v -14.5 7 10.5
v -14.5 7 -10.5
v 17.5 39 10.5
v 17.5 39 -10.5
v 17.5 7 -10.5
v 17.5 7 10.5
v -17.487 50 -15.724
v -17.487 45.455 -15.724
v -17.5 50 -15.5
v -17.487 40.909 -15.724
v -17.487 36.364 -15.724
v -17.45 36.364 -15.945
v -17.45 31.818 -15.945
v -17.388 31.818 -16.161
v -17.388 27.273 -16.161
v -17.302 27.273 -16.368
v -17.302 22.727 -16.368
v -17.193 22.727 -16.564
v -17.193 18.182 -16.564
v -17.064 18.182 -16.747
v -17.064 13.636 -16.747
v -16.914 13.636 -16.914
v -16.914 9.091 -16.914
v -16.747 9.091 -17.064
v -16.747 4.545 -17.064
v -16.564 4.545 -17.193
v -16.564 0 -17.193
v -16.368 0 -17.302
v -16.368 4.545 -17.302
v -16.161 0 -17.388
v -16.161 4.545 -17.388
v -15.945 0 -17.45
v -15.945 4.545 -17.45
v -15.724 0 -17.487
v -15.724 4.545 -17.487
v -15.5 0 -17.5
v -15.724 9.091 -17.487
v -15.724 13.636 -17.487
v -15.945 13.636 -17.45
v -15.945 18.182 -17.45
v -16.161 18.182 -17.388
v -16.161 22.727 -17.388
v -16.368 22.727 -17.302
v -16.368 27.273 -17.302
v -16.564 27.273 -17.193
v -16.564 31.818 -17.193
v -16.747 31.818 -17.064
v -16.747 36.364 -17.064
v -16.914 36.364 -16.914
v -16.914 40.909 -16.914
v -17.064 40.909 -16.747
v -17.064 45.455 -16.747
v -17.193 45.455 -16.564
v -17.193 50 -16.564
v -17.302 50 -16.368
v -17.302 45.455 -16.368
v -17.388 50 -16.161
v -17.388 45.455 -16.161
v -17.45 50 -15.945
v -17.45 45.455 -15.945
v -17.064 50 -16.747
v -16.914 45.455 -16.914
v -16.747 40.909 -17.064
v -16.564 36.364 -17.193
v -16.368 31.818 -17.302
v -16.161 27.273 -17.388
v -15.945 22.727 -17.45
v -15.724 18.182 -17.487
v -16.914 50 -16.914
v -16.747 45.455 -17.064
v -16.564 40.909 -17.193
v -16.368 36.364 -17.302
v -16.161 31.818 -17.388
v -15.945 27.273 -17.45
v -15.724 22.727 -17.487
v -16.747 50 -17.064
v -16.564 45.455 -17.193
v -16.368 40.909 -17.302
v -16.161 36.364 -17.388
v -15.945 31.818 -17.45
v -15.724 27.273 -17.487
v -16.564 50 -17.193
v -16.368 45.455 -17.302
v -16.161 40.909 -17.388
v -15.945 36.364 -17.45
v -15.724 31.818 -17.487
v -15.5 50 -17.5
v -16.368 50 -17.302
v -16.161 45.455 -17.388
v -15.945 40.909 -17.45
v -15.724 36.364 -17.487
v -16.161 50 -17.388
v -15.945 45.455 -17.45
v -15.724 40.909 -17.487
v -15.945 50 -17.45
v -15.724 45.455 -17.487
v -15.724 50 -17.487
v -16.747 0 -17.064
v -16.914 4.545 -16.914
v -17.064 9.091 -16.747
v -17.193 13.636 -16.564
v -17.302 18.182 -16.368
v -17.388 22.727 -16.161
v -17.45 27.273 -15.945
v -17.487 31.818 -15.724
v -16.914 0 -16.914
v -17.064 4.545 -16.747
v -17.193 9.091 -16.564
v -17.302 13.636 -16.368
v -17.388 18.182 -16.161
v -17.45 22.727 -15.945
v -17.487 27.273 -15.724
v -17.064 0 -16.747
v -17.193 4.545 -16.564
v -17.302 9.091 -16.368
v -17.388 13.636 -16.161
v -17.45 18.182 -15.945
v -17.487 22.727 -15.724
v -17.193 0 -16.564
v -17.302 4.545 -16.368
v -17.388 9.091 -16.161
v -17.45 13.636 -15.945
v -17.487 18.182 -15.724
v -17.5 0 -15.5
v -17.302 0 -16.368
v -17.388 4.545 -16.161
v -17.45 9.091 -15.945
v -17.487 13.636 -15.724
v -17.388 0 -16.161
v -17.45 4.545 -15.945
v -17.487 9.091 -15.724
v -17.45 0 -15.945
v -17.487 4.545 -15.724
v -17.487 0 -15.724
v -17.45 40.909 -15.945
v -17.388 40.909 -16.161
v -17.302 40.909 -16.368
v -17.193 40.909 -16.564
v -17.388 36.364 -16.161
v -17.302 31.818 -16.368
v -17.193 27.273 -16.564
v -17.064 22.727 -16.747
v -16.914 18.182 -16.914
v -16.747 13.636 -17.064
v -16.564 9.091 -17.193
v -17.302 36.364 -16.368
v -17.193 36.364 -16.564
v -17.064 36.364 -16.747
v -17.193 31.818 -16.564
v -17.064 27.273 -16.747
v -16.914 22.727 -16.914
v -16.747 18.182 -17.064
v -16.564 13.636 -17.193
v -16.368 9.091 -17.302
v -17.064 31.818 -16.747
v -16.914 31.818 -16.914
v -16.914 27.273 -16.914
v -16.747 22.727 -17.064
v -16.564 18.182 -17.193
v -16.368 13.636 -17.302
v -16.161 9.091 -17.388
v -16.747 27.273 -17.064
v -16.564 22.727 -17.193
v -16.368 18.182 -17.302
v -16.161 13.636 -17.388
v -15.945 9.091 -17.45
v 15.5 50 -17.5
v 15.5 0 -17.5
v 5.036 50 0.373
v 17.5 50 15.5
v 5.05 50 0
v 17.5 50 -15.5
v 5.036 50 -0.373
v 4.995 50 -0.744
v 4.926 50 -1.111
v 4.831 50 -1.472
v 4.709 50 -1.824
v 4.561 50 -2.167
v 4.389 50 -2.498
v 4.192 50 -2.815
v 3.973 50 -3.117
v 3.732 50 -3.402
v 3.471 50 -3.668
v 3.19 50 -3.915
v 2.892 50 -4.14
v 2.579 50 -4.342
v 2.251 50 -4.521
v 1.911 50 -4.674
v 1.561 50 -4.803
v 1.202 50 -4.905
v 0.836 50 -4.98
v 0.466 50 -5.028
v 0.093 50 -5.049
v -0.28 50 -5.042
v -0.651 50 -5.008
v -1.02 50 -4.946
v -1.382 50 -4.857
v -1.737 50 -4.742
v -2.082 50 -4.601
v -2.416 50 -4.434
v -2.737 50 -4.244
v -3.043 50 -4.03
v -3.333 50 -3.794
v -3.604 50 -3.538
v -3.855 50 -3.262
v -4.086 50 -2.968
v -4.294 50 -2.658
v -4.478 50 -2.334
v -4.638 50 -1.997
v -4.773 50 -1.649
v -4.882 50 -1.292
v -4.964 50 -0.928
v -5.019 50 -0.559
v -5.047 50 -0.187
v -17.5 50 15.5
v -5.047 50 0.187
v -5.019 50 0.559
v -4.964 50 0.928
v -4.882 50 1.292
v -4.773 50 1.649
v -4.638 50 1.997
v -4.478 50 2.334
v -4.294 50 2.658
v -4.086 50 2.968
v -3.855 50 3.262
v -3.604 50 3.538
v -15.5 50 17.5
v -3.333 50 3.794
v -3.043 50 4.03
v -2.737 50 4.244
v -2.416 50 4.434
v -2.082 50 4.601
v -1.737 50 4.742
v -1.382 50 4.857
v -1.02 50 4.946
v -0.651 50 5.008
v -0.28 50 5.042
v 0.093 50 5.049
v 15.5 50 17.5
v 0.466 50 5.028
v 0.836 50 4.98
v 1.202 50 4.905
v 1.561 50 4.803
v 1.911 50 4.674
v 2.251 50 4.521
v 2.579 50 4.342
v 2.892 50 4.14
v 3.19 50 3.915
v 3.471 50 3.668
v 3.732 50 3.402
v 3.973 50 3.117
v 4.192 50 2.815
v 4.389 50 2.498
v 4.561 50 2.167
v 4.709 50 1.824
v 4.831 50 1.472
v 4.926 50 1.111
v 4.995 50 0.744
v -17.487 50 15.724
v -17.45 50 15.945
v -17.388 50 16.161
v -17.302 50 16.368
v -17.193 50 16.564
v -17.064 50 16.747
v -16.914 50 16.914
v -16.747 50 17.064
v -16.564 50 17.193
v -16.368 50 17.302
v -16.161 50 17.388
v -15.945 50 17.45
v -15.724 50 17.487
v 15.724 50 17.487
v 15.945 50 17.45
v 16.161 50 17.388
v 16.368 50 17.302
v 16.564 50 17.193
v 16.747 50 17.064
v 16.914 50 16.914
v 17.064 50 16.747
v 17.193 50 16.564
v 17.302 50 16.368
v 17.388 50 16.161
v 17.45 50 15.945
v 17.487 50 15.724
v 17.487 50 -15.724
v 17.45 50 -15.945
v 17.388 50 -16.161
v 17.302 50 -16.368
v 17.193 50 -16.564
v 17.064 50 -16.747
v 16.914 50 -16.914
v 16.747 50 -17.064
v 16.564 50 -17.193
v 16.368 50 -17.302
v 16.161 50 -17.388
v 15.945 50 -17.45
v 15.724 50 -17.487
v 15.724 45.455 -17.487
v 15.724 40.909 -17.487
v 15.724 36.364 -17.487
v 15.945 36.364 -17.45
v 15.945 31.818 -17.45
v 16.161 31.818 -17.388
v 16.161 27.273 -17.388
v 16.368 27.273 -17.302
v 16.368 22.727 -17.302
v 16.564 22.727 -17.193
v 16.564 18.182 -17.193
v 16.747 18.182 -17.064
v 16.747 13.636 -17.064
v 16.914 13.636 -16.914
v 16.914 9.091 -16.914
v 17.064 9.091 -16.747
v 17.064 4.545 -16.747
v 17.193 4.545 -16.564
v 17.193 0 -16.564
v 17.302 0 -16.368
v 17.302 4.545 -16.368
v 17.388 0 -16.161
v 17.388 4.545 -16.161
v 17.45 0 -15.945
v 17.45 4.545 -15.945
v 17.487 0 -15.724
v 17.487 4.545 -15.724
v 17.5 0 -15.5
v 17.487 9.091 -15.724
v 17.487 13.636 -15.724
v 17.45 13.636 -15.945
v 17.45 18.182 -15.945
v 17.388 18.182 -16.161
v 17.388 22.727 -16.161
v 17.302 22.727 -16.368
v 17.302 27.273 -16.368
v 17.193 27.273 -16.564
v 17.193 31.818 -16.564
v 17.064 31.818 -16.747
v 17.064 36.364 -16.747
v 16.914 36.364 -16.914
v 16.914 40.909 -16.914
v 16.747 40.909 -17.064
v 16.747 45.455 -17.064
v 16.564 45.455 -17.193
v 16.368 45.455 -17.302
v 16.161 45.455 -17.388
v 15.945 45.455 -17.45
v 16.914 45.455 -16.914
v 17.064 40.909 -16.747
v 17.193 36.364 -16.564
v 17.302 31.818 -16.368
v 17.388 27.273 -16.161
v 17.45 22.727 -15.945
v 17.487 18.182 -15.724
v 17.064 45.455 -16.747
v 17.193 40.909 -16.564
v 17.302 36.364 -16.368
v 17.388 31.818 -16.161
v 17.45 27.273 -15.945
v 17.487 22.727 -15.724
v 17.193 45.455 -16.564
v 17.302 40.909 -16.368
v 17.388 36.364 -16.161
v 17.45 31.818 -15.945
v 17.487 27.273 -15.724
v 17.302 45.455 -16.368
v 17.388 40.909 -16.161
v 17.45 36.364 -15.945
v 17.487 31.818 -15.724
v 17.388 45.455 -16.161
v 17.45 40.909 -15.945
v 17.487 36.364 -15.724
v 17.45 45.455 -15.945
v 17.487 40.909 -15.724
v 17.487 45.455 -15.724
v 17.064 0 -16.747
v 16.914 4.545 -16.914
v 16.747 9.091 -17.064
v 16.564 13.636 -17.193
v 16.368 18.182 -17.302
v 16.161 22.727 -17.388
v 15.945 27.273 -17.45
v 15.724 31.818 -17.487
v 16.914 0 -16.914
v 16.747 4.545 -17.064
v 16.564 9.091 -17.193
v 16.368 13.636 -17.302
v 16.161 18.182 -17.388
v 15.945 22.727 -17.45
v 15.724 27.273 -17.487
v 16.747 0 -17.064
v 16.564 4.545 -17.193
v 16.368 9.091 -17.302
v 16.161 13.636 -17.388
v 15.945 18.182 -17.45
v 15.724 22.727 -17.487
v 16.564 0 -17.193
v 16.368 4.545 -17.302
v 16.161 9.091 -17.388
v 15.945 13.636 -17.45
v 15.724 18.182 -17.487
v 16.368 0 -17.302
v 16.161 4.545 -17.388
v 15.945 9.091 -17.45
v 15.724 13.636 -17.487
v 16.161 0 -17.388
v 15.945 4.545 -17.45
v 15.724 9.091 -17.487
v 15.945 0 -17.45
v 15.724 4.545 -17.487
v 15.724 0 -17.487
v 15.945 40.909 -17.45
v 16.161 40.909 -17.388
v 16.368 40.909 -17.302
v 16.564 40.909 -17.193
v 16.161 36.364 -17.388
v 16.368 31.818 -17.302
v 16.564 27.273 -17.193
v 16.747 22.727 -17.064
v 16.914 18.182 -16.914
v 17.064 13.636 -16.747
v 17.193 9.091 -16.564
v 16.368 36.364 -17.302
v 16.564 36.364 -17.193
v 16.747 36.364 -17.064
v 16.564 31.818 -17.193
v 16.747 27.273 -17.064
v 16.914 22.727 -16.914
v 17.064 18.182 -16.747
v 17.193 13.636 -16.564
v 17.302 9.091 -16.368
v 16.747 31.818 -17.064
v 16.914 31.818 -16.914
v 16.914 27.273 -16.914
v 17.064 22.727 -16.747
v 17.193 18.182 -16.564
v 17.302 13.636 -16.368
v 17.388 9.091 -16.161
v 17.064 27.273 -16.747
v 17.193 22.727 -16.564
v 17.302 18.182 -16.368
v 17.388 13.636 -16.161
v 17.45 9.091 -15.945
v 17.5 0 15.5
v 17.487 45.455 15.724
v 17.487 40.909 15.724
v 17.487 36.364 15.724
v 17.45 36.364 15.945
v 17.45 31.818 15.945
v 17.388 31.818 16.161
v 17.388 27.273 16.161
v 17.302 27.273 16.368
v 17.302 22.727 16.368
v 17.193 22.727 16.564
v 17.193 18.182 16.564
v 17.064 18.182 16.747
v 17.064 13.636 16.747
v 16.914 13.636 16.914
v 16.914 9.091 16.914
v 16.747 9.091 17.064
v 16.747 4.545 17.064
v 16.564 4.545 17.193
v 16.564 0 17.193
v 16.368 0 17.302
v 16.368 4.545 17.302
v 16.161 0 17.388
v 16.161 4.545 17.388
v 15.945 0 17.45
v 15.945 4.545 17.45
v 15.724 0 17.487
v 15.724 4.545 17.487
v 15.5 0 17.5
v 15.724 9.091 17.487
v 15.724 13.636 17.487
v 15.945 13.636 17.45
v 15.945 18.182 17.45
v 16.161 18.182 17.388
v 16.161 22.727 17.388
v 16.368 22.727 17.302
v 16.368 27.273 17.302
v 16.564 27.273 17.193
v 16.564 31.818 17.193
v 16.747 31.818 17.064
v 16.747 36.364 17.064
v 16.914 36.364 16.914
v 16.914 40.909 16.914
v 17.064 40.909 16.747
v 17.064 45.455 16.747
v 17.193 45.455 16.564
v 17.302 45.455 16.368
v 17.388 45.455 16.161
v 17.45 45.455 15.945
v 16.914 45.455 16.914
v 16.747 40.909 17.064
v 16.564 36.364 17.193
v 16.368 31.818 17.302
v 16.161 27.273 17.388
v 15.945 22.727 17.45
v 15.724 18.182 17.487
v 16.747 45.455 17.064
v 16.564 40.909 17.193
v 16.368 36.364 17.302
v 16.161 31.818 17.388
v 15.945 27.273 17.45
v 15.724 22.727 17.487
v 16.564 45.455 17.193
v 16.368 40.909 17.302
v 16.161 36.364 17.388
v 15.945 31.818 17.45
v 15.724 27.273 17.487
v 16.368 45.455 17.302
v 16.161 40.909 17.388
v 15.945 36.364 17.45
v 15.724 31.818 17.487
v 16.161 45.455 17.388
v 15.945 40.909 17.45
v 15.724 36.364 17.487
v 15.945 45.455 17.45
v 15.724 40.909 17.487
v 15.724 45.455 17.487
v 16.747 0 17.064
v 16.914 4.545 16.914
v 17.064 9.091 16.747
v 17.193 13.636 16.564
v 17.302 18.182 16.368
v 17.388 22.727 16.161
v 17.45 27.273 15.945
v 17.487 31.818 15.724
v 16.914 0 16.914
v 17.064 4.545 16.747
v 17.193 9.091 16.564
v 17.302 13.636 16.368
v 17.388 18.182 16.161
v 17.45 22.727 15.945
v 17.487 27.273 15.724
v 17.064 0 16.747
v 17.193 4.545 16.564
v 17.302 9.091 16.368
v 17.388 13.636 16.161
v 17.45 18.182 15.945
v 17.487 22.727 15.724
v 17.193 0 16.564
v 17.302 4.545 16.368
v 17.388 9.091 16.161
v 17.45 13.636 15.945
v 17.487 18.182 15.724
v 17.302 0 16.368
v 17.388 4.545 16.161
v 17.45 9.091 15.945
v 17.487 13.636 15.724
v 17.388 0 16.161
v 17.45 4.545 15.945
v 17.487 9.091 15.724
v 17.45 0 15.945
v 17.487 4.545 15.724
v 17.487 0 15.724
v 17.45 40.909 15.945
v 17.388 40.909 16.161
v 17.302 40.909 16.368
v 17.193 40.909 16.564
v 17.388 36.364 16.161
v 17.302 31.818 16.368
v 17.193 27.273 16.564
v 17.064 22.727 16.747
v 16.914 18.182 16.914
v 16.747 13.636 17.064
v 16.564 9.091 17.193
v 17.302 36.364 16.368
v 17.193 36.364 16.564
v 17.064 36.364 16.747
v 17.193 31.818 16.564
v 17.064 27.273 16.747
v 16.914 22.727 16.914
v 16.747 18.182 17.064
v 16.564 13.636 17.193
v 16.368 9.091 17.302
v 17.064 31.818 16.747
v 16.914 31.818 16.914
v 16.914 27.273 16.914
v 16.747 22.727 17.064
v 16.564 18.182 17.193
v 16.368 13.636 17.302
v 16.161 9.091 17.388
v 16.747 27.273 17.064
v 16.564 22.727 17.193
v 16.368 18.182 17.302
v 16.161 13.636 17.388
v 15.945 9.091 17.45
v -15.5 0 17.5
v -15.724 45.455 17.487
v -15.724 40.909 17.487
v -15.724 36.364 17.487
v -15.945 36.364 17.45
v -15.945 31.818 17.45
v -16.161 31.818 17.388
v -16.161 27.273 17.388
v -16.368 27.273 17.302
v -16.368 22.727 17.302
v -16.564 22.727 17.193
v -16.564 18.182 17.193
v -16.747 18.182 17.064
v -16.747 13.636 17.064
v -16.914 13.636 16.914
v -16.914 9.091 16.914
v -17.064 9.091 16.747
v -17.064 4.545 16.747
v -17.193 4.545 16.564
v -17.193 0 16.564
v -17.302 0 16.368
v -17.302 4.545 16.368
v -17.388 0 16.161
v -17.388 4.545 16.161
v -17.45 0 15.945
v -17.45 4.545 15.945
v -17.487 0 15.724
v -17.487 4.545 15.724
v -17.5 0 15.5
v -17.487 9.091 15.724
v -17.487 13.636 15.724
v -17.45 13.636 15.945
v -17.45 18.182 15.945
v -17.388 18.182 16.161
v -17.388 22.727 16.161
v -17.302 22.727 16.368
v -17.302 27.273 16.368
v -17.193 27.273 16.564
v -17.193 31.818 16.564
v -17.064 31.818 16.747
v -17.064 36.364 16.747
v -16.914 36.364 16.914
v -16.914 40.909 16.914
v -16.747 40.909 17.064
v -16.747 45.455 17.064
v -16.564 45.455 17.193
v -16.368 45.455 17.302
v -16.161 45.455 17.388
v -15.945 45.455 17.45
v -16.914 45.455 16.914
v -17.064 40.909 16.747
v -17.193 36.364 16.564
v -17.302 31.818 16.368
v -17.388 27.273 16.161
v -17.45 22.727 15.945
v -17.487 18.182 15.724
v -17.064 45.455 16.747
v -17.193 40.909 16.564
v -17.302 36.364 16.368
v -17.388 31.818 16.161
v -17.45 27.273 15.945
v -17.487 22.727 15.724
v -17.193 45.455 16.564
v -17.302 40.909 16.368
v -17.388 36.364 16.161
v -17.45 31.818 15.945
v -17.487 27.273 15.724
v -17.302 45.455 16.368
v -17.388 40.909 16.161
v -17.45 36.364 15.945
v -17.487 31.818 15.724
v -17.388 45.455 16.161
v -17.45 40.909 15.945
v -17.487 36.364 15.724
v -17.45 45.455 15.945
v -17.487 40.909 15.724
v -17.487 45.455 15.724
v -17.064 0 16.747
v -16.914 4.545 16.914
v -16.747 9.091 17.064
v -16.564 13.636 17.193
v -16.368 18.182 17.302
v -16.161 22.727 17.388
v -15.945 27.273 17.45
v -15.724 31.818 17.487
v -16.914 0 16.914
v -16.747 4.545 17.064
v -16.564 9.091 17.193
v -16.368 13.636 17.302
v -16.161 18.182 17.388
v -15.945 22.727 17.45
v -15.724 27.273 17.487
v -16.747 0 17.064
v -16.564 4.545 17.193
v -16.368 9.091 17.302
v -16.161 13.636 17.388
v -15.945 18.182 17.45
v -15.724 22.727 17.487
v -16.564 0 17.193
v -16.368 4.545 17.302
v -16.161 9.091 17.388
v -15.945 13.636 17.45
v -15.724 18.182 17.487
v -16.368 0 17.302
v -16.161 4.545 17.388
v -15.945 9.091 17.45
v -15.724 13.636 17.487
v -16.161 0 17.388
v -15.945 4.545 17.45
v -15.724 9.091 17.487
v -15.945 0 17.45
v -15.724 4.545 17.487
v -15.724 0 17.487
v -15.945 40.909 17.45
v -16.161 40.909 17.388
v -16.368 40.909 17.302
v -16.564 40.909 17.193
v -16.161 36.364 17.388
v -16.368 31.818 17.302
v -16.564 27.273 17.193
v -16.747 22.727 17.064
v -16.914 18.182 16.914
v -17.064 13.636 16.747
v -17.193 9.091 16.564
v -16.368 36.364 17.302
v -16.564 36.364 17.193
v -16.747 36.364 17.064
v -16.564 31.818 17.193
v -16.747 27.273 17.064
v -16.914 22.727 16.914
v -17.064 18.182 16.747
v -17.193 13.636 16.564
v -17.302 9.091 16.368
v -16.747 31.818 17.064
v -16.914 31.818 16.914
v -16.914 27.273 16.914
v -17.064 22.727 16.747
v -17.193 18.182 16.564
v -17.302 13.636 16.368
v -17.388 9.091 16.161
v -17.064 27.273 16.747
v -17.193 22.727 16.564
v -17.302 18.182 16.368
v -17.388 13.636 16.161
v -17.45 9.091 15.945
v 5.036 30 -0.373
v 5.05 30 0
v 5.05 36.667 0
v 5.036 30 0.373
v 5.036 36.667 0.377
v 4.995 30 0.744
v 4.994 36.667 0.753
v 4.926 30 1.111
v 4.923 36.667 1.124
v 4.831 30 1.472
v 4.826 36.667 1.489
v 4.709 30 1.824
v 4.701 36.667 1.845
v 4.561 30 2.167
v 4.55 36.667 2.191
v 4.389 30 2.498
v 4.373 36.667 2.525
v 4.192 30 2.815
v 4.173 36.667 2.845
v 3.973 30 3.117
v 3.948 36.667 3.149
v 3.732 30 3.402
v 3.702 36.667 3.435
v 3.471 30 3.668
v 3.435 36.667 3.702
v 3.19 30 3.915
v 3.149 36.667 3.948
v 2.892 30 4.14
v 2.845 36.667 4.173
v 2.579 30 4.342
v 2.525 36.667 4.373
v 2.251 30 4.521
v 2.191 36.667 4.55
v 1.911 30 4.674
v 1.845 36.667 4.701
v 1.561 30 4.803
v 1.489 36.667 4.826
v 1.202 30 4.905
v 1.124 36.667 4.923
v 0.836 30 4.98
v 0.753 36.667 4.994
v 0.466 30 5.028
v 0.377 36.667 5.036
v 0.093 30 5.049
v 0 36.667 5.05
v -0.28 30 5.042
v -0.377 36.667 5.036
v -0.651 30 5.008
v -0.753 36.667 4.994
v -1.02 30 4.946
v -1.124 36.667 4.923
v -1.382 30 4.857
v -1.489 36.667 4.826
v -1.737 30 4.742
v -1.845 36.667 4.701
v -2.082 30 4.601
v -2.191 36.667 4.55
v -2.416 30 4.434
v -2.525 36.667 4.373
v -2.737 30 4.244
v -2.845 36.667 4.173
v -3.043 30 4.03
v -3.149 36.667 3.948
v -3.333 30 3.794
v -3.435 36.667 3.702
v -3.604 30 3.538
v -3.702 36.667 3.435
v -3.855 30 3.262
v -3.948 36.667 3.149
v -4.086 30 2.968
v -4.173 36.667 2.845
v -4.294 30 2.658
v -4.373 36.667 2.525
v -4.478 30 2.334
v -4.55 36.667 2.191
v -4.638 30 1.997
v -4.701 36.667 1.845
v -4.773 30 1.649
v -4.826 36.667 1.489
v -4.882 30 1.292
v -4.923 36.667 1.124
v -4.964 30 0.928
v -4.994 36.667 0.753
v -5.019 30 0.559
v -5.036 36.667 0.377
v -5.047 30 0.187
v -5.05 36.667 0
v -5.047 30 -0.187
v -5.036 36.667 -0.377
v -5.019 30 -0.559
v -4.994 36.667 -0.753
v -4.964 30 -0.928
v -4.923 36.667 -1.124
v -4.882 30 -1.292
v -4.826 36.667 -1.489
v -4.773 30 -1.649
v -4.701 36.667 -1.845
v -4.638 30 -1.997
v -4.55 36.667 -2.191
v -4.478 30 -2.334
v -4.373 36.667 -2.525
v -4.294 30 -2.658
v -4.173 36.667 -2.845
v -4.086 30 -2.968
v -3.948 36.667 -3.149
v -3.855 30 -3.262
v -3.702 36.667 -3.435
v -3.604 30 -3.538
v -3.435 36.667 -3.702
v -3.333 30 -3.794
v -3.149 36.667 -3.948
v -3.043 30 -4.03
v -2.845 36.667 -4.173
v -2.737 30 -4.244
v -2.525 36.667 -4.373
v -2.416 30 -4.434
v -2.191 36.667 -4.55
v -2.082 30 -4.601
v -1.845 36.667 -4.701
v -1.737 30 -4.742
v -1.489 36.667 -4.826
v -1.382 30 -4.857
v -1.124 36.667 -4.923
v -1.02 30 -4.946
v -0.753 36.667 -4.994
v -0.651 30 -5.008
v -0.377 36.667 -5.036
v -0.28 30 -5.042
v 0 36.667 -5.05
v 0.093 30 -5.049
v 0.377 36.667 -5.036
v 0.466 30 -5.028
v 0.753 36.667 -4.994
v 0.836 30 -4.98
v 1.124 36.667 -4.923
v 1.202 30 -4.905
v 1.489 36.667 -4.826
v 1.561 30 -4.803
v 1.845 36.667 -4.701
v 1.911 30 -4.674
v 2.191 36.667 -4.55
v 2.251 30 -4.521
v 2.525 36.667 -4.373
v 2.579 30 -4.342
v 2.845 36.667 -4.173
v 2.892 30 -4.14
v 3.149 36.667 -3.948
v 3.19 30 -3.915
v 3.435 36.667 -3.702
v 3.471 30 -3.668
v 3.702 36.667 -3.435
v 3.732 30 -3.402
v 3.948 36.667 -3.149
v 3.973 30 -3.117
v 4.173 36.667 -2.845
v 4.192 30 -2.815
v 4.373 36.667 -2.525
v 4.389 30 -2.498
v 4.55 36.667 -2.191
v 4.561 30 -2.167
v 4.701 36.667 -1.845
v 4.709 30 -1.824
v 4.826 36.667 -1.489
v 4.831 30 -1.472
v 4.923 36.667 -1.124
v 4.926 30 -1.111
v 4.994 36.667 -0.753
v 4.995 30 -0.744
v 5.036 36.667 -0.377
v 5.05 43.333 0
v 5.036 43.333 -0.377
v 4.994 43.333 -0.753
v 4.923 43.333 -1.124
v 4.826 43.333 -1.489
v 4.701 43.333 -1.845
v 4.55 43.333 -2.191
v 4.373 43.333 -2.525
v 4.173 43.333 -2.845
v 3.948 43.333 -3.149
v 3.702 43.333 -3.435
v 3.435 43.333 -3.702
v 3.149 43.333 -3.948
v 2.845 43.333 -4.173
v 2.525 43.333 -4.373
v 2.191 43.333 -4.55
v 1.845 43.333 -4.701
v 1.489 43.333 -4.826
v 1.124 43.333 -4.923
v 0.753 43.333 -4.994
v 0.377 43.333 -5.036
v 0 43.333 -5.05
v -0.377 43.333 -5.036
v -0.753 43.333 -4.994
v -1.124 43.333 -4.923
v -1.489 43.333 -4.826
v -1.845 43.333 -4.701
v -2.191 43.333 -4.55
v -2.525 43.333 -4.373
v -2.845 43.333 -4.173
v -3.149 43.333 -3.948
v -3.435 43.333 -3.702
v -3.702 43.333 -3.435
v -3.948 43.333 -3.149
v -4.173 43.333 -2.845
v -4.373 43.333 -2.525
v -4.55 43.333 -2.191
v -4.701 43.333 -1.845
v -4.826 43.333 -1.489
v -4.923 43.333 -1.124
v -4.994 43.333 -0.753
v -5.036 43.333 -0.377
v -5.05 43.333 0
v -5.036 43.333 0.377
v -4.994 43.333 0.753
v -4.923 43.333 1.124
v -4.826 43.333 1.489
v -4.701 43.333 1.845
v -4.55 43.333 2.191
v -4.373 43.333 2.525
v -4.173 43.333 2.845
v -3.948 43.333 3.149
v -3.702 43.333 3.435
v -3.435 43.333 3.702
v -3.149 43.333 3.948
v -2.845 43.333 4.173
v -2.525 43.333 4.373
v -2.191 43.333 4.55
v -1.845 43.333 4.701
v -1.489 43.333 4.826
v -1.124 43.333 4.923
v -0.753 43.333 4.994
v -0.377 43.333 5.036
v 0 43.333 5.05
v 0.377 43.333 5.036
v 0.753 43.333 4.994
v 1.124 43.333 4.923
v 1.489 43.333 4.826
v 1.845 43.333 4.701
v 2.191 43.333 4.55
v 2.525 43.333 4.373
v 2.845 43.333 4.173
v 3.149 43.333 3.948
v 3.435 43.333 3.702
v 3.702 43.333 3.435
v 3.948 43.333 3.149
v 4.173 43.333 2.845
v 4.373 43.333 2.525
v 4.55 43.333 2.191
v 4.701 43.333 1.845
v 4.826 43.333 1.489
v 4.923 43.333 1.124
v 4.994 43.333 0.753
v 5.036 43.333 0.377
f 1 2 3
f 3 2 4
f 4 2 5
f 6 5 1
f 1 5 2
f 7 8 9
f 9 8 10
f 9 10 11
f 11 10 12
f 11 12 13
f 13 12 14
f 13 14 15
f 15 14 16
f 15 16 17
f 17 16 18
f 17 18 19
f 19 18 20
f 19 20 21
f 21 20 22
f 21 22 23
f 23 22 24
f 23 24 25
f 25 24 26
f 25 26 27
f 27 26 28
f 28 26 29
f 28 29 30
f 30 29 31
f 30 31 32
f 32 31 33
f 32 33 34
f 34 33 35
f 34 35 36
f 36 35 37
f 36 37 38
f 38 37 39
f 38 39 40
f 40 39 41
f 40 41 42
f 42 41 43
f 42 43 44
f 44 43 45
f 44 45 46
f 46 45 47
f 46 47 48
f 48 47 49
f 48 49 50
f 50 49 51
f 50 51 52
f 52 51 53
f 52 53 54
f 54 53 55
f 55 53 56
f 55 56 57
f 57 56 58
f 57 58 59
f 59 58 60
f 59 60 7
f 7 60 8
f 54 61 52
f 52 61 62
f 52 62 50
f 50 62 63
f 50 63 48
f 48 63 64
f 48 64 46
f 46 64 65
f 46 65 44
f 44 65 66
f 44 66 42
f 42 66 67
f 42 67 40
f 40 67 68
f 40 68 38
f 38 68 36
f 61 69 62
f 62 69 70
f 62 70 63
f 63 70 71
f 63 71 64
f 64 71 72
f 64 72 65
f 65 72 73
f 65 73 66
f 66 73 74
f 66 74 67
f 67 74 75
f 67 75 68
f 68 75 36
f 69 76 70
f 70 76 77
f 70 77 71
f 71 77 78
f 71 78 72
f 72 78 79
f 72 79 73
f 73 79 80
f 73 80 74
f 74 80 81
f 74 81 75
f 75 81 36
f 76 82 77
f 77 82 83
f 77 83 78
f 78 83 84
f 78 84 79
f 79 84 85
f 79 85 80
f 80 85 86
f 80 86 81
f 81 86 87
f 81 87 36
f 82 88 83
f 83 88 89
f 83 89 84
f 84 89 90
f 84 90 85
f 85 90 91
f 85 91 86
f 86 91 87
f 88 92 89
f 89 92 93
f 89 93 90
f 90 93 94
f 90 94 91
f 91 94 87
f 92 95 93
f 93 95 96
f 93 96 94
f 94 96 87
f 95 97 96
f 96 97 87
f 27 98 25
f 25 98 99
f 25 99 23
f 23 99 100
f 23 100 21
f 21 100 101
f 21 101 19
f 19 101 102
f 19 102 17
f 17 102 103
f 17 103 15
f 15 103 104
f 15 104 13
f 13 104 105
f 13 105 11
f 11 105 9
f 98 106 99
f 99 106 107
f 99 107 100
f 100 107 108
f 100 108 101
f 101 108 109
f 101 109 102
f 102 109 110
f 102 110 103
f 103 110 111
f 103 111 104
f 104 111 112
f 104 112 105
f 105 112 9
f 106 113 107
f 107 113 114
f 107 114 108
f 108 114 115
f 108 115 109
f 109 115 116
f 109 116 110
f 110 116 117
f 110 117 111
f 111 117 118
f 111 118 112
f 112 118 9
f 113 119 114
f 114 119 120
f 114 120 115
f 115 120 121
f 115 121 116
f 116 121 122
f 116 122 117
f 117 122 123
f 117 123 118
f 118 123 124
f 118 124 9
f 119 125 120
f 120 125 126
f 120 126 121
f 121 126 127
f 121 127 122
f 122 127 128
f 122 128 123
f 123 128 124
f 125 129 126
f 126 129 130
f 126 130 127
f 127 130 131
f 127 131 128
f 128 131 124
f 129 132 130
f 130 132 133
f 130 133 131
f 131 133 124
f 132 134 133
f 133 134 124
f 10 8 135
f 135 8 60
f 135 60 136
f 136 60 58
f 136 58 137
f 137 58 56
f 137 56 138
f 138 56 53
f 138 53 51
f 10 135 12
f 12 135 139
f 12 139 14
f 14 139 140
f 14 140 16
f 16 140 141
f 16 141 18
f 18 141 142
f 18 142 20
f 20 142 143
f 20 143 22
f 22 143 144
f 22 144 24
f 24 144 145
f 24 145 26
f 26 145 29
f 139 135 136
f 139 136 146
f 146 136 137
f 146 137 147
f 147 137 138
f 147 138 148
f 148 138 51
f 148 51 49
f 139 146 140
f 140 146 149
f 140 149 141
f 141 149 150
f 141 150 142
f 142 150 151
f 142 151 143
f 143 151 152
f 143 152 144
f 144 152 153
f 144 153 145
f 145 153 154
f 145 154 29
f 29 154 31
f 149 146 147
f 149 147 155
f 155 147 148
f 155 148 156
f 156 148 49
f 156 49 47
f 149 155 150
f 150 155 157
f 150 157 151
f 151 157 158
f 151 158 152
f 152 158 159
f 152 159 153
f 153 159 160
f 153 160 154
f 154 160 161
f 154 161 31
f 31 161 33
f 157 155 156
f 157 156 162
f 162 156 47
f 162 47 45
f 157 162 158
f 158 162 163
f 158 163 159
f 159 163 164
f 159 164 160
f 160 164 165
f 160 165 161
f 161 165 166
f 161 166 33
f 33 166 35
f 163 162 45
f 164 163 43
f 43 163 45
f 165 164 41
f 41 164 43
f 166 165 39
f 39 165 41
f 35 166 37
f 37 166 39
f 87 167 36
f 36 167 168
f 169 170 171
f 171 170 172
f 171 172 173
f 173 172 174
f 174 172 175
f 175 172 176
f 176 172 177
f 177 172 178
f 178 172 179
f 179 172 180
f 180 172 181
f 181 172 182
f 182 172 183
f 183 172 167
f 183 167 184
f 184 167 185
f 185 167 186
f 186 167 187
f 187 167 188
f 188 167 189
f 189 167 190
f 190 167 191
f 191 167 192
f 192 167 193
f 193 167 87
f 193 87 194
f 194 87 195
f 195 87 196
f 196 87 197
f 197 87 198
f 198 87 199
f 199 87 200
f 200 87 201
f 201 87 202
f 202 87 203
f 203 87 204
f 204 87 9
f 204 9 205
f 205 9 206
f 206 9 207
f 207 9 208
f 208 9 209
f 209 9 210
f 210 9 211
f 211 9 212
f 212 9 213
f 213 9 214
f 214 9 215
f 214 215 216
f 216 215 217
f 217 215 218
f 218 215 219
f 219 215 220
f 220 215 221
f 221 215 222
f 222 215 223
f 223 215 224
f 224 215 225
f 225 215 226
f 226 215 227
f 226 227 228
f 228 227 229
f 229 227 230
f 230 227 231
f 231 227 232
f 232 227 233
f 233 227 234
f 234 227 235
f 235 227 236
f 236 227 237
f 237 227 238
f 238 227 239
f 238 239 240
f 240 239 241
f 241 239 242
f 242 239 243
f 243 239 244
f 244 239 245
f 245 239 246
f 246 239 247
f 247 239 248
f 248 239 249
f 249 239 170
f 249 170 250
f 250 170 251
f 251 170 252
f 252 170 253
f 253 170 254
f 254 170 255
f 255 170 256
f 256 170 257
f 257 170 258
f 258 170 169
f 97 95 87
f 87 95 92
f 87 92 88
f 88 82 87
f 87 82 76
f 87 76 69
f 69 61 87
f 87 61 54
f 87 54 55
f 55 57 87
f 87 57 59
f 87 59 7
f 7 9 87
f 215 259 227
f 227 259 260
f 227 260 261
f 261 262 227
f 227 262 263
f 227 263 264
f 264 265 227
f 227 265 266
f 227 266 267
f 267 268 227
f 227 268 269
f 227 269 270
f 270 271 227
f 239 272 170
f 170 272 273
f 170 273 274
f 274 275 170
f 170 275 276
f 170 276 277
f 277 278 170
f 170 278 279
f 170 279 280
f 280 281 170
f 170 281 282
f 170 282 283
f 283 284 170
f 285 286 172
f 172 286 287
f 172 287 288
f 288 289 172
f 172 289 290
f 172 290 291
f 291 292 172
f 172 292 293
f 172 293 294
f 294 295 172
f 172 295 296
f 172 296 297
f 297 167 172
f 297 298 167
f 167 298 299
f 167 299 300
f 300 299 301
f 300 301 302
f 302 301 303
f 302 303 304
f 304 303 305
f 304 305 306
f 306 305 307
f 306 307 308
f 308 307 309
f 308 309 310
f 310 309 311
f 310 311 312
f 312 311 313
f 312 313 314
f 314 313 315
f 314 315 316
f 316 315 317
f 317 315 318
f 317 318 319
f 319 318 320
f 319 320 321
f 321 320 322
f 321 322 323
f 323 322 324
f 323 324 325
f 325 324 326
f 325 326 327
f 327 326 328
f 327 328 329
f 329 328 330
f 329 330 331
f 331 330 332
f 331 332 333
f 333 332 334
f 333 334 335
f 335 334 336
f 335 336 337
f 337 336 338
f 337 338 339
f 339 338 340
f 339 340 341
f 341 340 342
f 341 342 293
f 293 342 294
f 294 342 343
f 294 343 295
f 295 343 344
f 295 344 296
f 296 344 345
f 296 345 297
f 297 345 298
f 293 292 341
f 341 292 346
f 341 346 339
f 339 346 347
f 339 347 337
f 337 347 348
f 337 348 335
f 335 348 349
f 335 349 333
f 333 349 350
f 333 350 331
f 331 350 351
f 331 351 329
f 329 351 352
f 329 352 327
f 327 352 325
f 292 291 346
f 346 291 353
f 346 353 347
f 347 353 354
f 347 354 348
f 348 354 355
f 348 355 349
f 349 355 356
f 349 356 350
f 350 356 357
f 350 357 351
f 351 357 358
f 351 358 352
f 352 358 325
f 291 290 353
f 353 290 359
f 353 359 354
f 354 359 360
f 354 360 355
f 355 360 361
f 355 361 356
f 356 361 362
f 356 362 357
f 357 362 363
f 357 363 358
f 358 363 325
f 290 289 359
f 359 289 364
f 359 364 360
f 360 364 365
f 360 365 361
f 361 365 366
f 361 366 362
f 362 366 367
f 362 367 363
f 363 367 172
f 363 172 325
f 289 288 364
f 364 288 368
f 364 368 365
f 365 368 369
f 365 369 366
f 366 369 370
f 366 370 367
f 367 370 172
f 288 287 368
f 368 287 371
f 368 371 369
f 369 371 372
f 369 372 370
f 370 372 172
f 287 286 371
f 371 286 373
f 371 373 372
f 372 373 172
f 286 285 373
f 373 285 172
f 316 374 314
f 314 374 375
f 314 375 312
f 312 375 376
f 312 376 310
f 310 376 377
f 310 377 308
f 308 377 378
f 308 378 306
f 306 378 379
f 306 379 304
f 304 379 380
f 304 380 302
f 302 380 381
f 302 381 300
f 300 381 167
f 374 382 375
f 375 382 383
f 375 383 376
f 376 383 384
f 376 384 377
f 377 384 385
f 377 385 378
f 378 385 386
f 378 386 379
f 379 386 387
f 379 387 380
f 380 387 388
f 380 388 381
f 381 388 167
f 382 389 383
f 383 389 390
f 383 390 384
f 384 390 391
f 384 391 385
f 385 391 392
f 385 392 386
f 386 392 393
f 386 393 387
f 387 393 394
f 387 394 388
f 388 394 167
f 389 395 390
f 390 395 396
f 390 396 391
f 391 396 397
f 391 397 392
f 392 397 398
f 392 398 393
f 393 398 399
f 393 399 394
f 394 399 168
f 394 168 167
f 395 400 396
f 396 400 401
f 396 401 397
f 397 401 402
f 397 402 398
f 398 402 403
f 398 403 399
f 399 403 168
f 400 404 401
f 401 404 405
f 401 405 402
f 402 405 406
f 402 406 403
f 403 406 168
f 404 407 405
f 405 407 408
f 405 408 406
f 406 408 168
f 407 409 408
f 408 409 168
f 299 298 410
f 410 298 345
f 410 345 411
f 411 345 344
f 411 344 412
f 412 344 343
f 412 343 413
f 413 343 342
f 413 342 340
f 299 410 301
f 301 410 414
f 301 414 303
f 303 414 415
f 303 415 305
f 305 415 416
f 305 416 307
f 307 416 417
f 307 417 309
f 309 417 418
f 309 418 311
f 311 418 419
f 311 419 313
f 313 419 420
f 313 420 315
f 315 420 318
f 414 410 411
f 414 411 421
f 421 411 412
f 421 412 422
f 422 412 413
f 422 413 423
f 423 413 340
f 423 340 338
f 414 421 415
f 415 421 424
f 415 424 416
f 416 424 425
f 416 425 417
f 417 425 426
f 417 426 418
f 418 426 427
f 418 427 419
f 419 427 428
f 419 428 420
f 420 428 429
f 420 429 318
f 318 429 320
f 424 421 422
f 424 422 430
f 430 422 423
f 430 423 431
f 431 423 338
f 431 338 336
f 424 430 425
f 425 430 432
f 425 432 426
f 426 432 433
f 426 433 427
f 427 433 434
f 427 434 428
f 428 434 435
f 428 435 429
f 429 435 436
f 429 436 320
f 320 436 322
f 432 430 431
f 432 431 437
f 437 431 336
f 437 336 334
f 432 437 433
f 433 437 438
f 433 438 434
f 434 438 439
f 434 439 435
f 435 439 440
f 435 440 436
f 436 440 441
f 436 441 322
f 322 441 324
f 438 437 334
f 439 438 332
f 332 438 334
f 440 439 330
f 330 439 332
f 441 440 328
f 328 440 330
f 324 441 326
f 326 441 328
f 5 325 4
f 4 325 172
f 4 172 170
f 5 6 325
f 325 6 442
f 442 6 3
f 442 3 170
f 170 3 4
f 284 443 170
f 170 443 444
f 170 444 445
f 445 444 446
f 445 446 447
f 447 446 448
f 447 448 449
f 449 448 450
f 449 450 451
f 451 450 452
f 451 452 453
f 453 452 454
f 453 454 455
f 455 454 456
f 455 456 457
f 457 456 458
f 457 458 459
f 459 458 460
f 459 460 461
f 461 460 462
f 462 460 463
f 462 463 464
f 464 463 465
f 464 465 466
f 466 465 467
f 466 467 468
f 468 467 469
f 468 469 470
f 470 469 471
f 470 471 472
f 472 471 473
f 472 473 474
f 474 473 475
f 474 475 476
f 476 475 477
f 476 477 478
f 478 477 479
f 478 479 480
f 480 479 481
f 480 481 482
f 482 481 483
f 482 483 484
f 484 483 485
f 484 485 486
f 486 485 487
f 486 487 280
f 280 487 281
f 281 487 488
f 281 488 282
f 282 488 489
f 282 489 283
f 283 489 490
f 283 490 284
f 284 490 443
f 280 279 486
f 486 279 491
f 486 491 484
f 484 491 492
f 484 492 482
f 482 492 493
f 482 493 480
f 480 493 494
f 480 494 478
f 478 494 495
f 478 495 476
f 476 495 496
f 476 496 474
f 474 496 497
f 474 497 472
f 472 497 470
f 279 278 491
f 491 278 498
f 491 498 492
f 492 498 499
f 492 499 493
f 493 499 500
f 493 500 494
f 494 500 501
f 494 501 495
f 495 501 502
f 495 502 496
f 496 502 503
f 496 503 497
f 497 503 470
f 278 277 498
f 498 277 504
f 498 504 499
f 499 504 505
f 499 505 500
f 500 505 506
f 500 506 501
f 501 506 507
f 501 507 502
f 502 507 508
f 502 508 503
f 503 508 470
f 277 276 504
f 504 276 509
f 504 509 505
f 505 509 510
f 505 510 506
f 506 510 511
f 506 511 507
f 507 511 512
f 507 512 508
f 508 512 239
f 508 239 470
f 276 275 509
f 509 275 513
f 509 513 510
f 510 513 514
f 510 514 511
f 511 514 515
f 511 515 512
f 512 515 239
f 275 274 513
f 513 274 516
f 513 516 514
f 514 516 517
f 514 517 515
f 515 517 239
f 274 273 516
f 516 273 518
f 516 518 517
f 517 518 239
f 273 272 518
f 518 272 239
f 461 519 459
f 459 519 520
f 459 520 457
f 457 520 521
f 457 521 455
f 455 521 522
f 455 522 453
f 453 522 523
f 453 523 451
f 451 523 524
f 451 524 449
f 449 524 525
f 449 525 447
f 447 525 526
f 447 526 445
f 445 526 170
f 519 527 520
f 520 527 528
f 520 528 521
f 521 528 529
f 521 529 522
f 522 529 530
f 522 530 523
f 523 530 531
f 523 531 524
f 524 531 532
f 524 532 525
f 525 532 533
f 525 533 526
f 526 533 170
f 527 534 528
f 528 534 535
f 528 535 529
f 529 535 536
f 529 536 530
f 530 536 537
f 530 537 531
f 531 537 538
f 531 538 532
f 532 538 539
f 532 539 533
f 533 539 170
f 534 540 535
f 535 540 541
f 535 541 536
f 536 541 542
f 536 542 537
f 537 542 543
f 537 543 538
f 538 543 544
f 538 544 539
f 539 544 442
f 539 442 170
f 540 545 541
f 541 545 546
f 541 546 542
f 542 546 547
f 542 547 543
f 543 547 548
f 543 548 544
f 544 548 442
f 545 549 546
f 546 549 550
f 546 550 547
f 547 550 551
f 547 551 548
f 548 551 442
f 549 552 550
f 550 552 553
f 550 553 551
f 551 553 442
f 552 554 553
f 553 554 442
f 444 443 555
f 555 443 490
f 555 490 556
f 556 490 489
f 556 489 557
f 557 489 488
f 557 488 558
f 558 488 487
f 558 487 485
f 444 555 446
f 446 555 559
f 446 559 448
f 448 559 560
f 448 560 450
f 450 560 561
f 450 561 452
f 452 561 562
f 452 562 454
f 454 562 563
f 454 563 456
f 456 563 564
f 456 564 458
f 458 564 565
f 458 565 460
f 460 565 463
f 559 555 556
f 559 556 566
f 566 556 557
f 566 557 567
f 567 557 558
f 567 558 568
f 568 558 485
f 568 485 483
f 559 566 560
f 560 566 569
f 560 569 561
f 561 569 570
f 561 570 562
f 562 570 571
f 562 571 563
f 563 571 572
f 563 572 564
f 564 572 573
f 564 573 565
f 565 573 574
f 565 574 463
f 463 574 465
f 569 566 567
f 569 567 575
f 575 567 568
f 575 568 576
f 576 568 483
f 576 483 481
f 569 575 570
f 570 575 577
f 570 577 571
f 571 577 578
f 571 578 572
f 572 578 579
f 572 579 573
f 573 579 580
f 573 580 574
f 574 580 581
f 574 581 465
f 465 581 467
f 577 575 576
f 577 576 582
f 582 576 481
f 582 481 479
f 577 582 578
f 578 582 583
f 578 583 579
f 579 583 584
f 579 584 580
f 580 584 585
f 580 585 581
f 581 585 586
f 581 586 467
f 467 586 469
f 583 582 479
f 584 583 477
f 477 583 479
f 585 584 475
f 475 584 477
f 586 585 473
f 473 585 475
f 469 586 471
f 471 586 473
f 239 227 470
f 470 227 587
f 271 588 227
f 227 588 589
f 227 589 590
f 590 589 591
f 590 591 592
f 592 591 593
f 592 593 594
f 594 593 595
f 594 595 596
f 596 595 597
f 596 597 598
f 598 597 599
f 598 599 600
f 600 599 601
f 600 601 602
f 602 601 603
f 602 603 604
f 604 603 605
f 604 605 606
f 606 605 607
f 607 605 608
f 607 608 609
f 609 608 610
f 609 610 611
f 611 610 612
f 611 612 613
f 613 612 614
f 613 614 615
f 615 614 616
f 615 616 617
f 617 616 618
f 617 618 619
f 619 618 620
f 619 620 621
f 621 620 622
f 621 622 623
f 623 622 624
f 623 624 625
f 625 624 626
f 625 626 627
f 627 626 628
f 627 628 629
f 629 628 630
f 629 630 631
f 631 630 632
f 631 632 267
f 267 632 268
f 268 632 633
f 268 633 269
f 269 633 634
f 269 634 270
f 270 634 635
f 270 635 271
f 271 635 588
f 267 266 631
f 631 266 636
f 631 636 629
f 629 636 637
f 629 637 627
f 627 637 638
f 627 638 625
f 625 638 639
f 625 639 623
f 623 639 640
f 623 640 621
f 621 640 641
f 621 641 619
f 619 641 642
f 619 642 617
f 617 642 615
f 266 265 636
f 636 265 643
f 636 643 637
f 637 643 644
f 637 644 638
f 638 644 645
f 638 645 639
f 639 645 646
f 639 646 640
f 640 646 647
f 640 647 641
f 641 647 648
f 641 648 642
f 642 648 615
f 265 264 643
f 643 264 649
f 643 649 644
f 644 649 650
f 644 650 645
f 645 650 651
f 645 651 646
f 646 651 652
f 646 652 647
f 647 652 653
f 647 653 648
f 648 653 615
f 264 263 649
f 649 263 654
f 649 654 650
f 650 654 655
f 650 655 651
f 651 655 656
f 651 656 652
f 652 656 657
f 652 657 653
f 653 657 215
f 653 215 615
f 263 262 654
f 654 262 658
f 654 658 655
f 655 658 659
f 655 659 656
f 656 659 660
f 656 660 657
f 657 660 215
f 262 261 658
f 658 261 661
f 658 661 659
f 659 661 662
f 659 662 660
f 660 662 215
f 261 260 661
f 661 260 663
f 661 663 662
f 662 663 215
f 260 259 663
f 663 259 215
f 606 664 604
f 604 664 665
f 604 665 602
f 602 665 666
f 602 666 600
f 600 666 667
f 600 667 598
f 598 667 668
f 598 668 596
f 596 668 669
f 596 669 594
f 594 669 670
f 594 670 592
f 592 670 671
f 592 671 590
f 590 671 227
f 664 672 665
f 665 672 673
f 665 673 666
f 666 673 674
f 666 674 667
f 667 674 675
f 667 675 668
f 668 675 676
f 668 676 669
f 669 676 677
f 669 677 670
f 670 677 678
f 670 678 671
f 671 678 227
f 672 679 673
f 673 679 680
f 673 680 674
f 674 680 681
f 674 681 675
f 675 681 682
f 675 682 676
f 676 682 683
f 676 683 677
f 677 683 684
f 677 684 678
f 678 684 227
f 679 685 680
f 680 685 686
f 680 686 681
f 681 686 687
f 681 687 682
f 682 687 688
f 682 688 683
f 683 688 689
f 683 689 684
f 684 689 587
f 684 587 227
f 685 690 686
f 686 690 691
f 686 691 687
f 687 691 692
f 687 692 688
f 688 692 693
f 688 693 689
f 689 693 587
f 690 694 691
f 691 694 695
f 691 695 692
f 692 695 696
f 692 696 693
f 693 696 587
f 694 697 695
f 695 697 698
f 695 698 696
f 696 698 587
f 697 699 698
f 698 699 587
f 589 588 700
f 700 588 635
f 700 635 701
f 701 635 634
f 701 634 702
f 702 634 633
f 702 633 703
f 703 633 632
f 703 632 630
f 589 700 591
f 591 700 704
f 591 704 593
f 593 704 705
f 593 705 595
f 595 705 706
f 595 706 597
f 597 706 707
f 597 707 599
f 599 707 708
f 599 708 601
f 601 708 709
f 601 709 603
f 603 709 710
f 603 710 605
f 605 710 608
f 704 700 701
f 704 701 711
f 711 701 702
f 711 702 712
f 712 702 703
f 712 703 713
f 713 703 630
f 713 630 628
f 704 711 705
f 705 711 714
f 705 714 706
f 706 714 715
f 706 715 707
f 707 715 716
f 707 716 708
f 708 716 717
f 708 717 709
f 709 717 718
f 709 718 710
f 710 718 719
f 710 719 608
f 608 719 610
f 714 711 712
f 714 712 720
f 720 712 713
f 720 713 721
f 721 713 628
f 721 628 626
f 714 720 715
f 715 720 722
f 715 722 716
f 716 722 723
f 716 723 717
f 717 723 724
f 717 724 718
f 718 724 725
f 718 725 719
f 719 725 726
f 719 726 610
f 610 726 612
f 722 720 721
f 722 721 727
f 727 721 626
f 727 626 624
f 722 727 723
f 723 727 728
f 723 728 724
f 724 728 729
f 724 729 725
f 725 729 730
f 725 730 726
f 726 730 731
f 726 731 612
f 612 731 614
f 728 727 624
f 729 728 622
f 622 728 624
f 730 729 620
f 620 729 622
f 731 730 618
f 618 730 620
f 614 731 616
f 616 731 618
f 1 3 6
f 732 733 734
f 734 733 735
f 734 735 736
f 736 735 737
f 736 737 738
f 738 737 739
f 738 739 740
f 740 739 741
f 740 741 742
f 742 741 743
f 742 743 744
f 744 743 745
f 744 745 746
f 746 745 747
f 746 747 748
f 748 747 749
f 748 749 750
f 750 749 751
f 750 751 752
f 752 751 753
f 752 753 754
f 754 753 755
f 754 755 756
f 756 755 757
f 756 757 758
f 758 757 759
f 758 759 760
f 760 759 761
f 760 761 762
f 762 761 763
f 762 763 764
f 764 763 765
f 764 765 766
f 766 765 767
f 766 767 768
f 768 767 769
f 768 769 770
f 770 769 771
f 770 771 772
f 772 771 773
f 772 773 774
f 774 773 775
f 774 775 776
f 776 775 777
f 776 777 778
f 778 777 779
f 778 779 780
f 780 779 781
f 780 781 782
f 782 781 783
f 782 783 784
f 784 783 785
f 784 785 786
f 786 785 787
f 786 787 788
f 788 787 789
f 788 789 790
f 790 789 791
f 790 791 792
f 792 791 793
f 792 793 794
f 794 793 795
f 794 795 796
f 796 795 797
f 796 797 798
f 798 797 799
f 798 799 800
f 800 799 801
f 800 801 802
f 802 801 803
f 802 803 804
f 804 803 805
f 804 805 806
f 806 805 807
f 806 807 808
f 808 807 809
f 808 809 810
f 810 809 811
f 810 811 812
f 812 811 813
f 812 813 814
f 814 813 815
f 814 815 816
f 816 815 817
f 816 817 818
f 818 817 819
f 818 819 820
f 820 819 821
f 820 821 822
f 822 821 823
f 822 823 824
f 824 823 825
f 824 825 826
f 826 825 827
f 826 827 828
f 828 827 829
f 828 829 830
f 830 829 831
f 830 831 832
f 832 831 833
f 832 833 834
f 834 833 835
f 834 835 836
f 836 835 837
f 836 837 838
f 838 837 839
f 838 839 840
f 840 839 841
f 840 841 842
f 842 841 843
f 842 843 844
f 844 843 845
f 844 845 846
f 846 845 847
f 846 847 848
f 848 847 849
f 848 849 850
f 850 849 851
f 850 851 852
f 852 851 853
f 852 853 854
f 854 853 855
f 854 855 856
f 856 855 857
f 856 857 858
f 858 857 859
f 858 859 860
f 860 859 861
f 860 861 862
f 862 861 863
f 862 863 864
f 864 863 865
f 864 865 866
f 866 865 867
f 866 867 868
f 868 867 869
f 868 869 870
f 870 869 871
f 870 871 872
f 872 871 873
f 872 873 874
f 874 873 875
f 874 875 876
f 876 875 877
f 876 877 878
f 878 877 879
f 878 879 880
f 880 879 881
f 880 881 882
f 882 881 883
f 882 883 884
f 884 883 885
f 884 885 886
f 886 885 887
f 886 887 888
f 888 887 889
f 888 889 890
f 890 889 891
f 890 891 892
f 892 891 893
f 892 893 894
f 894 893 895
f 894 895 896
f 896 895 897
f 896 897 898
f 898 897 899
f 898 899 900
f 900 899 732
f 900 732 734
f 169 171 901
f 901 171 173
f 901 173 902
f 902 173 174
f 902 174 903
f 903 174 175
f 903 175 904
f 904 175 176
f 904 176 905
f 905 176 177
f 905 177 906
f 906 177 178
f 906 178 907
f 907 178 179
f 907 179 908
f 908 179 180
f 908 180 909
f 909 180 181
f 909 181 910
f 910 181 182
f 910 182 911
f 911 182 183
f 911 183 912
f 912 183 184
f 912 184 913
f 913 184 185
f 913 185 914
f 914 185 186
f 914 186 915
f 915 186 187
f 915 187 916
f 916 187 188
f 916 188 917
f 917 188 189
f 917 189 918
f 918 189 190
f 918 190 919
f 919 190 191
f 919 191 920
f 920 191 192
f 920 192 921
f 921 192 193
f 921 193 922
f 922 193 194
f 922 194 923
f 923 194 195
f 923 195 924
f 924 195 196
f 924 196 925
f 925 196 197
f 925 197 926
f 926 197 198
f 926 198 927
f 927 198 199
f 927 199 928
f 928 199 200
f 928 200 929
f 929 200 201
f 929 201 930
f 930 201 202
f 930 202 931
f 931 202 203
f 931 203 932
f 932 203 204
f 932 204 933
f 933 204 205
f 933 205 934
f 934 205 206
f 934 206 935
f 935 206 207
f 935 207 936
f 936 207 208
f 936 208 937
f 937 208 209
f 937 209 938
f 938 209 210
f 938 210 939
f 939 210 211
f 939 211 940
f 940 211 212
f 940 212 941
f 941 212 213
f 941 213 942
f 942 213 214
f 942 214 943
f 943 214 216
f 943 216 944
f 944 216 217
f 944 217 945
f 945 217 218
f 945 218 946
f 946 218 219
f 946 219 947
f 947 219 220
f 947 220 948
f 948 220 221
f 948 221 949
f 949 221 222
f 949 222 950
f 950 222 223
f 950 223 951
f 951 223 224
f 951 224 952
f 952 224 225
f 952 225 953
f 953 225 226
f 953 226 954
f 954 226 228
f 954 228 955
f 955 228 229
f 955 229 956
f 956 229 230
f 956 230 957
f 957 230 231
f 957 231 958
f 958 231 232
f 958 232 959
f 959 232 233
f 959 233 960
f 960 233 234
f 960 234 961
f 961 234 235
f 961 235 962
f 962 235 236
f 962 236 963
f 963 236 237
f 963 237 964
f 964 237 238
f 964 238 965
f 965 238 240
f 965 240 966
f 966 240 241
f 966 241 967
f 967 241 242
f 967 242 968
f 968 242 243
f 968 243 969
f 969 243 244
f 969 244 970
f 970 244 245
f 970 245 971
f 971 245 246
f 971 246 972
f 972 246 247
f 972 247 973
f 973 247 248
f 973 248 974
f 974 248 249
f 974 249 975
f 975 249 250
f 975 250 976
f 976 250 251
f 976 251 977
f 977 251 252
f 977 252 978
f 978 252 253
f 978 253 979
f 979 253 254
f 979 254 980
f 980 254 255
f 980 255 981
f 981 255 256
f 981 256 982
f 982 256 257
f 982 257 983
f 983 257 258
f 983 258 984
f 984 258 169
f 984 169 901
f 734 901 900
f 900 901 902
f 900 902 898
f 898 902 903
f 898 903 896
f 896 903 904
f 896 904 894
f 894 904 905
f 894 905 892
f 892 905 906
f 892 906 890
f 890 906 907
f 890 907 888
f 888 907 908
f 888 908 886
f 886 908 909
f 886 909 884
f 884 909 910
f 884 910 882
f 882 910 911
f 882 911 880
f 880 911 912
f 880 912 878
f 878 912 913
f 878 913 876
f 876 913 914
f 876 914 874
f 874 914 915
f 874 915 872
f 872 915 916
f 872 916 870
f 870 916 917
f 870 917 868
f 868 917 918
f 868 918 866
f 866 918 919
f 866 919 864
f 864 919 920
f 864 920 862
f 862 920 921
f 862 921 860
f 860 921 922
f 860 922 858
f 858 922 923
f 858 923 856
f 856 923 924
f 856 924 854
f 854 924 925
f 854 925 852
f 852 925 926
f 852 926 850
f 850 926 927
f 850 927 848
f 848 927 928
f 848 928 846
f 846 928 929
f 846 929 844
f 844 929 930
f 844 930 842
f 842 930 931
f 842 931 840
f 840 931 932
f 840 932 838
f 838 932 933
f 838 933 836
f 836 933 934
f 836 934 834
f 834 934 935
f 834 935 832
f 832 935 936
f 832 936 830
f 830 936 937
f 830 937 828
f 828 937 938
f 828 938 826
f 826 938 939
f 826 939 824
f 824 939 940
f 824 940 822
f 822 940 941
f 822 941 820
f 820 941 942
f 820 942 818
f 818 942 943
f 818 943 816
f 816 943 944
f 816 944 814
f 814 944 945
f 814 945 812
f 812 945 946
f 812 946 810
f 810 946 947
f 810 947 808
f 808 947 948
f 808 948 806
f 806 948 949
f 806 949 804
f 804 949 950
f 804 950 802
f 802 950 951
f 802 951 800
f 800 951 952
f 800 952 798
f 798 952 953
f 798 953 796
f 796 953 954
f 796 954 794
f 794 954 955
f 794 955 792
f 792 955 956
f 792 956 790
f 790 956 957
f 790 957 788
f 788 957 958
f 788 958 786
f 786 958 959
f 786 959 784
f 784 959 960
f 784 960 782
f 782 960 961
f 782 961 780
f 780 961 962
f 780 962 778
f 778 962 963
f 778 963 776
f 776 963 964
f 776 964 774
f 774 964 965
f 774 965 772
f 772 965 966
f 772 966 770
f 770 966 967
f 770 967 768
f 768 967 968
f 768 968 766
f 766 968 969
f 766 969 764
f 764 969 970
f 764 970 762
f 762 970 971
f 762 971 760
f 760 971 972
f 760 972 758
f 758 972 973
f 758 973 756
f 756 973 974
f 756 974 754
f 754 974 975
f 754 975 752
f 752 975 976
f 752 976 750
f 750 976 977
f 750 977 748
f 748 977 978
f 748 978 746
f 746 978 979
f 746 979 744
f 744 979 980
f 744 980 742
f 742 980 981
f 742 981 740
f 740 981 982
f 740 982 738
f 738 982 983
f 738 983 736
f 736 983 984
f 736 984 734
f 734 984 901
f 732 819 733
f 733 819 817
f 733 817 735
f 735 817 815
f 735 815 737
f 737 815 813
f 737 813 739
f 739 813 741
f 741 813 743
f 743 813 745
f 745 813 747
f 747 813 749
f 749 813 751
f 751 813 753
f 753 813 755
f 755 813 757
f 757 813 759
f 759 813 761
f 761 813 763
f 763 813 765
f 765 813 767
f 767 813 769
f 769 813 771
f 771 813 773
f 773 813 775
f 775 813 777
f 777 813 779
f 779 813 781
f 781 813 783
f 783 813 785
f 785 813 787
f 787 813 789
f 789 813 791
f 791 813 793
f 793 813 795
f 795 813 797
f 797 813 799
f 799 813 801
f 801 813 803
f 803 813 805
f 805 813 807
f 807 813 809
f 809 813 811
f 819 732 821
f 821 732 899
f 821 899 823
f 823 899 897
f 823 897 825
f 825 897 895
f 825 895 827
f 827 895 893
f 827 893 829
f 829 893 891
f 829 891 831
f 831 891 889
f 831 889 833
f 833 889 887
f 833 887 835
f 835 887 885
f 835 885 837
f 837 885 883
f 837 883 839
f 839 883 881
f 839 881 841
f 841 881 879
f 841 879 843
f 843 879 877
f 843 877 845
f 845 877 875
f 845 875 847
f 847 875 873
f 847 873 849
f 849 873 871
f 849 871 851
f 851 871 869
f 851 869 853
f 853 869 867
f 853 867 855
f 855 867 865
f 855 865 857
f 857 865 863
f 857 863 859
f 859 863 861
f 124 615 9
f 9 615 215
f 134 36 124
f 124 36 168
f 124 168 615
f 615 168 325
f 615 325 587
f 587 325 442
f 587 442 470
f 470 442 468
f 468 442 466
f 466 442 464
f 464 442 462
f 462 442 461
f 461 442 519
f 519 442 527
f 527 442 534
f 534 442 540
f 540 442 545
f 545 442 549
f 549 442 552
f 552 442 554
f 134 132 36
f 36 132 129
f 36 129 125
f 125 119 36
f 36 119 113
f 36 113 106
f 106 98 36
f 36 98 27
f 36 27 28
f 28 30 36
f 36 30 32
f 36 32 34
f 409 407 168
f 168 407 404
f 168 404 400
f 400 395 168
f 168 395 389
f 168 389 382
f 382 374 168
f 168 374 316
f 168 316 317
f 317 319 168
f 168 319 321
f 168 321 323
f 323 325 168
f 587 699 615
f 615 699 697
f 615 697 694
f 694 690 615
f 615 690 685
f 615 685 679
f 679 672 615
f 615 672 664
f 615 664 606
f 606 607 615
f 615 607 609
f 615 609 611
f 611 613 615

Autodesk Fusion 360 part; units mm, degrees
sketch "Sketch1" plane through (0, 0, 0) normal (0, 1, 0) x (1, 0, 0)
  line L0 (-17.5, 17.5) -> (17.5, 17.5)
  line L1 (17.5, 17.5) -> (17.5, -17.5)
  line L2 (17.5, -17.5) -> (-17.5, -17.5)
  line L3 (-17.5, -17.5) -> (-17.5, 17.5)
  line L4 (-17.5, 17.5) -> (17.5, -17.5) construction
  line L5 (17.5, 17.5) -> (-17.5, -17.5) construction
  dimension "d1" = 35
  dimension "d2" = 35
extrude "Extrude1" add sketch "Sketch1" along normal blind 50 makes body 1
sketch "Sketch2" plane through (0, 50, 0) normal (0, 1, 0) x (-1, 0, 0)
  line L0 (17.5, 17.5) -> (-17.5, 17.5)
  line L1 (-17.5, 17.5) -> (-17.5, -17.5)
  line L2 (-17.5, -17.5) -> (17.5, -17.5)
  line L3 (17.5, -17.5) -> (17.5, 17.5)
  circle A0 centre (0, 0) radius 5.05
  dimension "d5" = 10.1
extrude "Extrude2" cut sketch "Sketch2" against normal blind 20 contours A0 bodies 1
sketch "Sketch3" plane through (17.5, 0, 0) normal (1, 0, 0) x (0, 0, -1)
  line L0 (-17.5, 0) -> (17.5, 0)
  line L1 (17.5, 0) -> (17.5, 50)
  line L2 (17.5, 50) -> (-17.5, 50)
  line L3 (-17.5, 50) -> (-17.5, 0)
  line L4 (-10.5, 7) -> (10.5, 7)
  line L5 (10.5, 7) -> (10.5, 43)
  line L6 (10.5, 43) -> (-10.5, 43)
  line L7 (-10.5, 43) -> (-10.5, 7)
  line L8 (-5.05, 30) -> (5.05, 30)
  line L9 (-10.5, 7) -> (-10.5, 19) construction
  line L10 (-10.5, 19) -> (10.5, 19)
  dimension "d8" = -7
  dimension "d10" = 12
extrude "Extrude3" cut sketch "Sketch3" against normal blind 20 contours L4 L5 L7 L10 bodies 1
draft "Draft1" angle 45 neutral plane through (-2.5, 0, 0) pull (1, 0, 0) 1 faces at (10.8333, 19, 3.5) on bodies 1
fillet "Fillet2" radius 2 4 edges at (-17.5, 25, 17.5) (17.5, 25, 17.5) (17.5, 25, -17.5) (-17.5, 25, -17.5) on bodies 1
delete_face "DeleteFace2" 1 faces at (-2.5, 15, -3.5) on bodies 1
copy_body "Body->Comp1" bodies 1 removing the originals makes body 2 in component "Desk Mount"
component "Desk Mount" placed x (1, 0, 0) y (0, 1, 0) z (0, 0, 1) at (0, 0, 0)
